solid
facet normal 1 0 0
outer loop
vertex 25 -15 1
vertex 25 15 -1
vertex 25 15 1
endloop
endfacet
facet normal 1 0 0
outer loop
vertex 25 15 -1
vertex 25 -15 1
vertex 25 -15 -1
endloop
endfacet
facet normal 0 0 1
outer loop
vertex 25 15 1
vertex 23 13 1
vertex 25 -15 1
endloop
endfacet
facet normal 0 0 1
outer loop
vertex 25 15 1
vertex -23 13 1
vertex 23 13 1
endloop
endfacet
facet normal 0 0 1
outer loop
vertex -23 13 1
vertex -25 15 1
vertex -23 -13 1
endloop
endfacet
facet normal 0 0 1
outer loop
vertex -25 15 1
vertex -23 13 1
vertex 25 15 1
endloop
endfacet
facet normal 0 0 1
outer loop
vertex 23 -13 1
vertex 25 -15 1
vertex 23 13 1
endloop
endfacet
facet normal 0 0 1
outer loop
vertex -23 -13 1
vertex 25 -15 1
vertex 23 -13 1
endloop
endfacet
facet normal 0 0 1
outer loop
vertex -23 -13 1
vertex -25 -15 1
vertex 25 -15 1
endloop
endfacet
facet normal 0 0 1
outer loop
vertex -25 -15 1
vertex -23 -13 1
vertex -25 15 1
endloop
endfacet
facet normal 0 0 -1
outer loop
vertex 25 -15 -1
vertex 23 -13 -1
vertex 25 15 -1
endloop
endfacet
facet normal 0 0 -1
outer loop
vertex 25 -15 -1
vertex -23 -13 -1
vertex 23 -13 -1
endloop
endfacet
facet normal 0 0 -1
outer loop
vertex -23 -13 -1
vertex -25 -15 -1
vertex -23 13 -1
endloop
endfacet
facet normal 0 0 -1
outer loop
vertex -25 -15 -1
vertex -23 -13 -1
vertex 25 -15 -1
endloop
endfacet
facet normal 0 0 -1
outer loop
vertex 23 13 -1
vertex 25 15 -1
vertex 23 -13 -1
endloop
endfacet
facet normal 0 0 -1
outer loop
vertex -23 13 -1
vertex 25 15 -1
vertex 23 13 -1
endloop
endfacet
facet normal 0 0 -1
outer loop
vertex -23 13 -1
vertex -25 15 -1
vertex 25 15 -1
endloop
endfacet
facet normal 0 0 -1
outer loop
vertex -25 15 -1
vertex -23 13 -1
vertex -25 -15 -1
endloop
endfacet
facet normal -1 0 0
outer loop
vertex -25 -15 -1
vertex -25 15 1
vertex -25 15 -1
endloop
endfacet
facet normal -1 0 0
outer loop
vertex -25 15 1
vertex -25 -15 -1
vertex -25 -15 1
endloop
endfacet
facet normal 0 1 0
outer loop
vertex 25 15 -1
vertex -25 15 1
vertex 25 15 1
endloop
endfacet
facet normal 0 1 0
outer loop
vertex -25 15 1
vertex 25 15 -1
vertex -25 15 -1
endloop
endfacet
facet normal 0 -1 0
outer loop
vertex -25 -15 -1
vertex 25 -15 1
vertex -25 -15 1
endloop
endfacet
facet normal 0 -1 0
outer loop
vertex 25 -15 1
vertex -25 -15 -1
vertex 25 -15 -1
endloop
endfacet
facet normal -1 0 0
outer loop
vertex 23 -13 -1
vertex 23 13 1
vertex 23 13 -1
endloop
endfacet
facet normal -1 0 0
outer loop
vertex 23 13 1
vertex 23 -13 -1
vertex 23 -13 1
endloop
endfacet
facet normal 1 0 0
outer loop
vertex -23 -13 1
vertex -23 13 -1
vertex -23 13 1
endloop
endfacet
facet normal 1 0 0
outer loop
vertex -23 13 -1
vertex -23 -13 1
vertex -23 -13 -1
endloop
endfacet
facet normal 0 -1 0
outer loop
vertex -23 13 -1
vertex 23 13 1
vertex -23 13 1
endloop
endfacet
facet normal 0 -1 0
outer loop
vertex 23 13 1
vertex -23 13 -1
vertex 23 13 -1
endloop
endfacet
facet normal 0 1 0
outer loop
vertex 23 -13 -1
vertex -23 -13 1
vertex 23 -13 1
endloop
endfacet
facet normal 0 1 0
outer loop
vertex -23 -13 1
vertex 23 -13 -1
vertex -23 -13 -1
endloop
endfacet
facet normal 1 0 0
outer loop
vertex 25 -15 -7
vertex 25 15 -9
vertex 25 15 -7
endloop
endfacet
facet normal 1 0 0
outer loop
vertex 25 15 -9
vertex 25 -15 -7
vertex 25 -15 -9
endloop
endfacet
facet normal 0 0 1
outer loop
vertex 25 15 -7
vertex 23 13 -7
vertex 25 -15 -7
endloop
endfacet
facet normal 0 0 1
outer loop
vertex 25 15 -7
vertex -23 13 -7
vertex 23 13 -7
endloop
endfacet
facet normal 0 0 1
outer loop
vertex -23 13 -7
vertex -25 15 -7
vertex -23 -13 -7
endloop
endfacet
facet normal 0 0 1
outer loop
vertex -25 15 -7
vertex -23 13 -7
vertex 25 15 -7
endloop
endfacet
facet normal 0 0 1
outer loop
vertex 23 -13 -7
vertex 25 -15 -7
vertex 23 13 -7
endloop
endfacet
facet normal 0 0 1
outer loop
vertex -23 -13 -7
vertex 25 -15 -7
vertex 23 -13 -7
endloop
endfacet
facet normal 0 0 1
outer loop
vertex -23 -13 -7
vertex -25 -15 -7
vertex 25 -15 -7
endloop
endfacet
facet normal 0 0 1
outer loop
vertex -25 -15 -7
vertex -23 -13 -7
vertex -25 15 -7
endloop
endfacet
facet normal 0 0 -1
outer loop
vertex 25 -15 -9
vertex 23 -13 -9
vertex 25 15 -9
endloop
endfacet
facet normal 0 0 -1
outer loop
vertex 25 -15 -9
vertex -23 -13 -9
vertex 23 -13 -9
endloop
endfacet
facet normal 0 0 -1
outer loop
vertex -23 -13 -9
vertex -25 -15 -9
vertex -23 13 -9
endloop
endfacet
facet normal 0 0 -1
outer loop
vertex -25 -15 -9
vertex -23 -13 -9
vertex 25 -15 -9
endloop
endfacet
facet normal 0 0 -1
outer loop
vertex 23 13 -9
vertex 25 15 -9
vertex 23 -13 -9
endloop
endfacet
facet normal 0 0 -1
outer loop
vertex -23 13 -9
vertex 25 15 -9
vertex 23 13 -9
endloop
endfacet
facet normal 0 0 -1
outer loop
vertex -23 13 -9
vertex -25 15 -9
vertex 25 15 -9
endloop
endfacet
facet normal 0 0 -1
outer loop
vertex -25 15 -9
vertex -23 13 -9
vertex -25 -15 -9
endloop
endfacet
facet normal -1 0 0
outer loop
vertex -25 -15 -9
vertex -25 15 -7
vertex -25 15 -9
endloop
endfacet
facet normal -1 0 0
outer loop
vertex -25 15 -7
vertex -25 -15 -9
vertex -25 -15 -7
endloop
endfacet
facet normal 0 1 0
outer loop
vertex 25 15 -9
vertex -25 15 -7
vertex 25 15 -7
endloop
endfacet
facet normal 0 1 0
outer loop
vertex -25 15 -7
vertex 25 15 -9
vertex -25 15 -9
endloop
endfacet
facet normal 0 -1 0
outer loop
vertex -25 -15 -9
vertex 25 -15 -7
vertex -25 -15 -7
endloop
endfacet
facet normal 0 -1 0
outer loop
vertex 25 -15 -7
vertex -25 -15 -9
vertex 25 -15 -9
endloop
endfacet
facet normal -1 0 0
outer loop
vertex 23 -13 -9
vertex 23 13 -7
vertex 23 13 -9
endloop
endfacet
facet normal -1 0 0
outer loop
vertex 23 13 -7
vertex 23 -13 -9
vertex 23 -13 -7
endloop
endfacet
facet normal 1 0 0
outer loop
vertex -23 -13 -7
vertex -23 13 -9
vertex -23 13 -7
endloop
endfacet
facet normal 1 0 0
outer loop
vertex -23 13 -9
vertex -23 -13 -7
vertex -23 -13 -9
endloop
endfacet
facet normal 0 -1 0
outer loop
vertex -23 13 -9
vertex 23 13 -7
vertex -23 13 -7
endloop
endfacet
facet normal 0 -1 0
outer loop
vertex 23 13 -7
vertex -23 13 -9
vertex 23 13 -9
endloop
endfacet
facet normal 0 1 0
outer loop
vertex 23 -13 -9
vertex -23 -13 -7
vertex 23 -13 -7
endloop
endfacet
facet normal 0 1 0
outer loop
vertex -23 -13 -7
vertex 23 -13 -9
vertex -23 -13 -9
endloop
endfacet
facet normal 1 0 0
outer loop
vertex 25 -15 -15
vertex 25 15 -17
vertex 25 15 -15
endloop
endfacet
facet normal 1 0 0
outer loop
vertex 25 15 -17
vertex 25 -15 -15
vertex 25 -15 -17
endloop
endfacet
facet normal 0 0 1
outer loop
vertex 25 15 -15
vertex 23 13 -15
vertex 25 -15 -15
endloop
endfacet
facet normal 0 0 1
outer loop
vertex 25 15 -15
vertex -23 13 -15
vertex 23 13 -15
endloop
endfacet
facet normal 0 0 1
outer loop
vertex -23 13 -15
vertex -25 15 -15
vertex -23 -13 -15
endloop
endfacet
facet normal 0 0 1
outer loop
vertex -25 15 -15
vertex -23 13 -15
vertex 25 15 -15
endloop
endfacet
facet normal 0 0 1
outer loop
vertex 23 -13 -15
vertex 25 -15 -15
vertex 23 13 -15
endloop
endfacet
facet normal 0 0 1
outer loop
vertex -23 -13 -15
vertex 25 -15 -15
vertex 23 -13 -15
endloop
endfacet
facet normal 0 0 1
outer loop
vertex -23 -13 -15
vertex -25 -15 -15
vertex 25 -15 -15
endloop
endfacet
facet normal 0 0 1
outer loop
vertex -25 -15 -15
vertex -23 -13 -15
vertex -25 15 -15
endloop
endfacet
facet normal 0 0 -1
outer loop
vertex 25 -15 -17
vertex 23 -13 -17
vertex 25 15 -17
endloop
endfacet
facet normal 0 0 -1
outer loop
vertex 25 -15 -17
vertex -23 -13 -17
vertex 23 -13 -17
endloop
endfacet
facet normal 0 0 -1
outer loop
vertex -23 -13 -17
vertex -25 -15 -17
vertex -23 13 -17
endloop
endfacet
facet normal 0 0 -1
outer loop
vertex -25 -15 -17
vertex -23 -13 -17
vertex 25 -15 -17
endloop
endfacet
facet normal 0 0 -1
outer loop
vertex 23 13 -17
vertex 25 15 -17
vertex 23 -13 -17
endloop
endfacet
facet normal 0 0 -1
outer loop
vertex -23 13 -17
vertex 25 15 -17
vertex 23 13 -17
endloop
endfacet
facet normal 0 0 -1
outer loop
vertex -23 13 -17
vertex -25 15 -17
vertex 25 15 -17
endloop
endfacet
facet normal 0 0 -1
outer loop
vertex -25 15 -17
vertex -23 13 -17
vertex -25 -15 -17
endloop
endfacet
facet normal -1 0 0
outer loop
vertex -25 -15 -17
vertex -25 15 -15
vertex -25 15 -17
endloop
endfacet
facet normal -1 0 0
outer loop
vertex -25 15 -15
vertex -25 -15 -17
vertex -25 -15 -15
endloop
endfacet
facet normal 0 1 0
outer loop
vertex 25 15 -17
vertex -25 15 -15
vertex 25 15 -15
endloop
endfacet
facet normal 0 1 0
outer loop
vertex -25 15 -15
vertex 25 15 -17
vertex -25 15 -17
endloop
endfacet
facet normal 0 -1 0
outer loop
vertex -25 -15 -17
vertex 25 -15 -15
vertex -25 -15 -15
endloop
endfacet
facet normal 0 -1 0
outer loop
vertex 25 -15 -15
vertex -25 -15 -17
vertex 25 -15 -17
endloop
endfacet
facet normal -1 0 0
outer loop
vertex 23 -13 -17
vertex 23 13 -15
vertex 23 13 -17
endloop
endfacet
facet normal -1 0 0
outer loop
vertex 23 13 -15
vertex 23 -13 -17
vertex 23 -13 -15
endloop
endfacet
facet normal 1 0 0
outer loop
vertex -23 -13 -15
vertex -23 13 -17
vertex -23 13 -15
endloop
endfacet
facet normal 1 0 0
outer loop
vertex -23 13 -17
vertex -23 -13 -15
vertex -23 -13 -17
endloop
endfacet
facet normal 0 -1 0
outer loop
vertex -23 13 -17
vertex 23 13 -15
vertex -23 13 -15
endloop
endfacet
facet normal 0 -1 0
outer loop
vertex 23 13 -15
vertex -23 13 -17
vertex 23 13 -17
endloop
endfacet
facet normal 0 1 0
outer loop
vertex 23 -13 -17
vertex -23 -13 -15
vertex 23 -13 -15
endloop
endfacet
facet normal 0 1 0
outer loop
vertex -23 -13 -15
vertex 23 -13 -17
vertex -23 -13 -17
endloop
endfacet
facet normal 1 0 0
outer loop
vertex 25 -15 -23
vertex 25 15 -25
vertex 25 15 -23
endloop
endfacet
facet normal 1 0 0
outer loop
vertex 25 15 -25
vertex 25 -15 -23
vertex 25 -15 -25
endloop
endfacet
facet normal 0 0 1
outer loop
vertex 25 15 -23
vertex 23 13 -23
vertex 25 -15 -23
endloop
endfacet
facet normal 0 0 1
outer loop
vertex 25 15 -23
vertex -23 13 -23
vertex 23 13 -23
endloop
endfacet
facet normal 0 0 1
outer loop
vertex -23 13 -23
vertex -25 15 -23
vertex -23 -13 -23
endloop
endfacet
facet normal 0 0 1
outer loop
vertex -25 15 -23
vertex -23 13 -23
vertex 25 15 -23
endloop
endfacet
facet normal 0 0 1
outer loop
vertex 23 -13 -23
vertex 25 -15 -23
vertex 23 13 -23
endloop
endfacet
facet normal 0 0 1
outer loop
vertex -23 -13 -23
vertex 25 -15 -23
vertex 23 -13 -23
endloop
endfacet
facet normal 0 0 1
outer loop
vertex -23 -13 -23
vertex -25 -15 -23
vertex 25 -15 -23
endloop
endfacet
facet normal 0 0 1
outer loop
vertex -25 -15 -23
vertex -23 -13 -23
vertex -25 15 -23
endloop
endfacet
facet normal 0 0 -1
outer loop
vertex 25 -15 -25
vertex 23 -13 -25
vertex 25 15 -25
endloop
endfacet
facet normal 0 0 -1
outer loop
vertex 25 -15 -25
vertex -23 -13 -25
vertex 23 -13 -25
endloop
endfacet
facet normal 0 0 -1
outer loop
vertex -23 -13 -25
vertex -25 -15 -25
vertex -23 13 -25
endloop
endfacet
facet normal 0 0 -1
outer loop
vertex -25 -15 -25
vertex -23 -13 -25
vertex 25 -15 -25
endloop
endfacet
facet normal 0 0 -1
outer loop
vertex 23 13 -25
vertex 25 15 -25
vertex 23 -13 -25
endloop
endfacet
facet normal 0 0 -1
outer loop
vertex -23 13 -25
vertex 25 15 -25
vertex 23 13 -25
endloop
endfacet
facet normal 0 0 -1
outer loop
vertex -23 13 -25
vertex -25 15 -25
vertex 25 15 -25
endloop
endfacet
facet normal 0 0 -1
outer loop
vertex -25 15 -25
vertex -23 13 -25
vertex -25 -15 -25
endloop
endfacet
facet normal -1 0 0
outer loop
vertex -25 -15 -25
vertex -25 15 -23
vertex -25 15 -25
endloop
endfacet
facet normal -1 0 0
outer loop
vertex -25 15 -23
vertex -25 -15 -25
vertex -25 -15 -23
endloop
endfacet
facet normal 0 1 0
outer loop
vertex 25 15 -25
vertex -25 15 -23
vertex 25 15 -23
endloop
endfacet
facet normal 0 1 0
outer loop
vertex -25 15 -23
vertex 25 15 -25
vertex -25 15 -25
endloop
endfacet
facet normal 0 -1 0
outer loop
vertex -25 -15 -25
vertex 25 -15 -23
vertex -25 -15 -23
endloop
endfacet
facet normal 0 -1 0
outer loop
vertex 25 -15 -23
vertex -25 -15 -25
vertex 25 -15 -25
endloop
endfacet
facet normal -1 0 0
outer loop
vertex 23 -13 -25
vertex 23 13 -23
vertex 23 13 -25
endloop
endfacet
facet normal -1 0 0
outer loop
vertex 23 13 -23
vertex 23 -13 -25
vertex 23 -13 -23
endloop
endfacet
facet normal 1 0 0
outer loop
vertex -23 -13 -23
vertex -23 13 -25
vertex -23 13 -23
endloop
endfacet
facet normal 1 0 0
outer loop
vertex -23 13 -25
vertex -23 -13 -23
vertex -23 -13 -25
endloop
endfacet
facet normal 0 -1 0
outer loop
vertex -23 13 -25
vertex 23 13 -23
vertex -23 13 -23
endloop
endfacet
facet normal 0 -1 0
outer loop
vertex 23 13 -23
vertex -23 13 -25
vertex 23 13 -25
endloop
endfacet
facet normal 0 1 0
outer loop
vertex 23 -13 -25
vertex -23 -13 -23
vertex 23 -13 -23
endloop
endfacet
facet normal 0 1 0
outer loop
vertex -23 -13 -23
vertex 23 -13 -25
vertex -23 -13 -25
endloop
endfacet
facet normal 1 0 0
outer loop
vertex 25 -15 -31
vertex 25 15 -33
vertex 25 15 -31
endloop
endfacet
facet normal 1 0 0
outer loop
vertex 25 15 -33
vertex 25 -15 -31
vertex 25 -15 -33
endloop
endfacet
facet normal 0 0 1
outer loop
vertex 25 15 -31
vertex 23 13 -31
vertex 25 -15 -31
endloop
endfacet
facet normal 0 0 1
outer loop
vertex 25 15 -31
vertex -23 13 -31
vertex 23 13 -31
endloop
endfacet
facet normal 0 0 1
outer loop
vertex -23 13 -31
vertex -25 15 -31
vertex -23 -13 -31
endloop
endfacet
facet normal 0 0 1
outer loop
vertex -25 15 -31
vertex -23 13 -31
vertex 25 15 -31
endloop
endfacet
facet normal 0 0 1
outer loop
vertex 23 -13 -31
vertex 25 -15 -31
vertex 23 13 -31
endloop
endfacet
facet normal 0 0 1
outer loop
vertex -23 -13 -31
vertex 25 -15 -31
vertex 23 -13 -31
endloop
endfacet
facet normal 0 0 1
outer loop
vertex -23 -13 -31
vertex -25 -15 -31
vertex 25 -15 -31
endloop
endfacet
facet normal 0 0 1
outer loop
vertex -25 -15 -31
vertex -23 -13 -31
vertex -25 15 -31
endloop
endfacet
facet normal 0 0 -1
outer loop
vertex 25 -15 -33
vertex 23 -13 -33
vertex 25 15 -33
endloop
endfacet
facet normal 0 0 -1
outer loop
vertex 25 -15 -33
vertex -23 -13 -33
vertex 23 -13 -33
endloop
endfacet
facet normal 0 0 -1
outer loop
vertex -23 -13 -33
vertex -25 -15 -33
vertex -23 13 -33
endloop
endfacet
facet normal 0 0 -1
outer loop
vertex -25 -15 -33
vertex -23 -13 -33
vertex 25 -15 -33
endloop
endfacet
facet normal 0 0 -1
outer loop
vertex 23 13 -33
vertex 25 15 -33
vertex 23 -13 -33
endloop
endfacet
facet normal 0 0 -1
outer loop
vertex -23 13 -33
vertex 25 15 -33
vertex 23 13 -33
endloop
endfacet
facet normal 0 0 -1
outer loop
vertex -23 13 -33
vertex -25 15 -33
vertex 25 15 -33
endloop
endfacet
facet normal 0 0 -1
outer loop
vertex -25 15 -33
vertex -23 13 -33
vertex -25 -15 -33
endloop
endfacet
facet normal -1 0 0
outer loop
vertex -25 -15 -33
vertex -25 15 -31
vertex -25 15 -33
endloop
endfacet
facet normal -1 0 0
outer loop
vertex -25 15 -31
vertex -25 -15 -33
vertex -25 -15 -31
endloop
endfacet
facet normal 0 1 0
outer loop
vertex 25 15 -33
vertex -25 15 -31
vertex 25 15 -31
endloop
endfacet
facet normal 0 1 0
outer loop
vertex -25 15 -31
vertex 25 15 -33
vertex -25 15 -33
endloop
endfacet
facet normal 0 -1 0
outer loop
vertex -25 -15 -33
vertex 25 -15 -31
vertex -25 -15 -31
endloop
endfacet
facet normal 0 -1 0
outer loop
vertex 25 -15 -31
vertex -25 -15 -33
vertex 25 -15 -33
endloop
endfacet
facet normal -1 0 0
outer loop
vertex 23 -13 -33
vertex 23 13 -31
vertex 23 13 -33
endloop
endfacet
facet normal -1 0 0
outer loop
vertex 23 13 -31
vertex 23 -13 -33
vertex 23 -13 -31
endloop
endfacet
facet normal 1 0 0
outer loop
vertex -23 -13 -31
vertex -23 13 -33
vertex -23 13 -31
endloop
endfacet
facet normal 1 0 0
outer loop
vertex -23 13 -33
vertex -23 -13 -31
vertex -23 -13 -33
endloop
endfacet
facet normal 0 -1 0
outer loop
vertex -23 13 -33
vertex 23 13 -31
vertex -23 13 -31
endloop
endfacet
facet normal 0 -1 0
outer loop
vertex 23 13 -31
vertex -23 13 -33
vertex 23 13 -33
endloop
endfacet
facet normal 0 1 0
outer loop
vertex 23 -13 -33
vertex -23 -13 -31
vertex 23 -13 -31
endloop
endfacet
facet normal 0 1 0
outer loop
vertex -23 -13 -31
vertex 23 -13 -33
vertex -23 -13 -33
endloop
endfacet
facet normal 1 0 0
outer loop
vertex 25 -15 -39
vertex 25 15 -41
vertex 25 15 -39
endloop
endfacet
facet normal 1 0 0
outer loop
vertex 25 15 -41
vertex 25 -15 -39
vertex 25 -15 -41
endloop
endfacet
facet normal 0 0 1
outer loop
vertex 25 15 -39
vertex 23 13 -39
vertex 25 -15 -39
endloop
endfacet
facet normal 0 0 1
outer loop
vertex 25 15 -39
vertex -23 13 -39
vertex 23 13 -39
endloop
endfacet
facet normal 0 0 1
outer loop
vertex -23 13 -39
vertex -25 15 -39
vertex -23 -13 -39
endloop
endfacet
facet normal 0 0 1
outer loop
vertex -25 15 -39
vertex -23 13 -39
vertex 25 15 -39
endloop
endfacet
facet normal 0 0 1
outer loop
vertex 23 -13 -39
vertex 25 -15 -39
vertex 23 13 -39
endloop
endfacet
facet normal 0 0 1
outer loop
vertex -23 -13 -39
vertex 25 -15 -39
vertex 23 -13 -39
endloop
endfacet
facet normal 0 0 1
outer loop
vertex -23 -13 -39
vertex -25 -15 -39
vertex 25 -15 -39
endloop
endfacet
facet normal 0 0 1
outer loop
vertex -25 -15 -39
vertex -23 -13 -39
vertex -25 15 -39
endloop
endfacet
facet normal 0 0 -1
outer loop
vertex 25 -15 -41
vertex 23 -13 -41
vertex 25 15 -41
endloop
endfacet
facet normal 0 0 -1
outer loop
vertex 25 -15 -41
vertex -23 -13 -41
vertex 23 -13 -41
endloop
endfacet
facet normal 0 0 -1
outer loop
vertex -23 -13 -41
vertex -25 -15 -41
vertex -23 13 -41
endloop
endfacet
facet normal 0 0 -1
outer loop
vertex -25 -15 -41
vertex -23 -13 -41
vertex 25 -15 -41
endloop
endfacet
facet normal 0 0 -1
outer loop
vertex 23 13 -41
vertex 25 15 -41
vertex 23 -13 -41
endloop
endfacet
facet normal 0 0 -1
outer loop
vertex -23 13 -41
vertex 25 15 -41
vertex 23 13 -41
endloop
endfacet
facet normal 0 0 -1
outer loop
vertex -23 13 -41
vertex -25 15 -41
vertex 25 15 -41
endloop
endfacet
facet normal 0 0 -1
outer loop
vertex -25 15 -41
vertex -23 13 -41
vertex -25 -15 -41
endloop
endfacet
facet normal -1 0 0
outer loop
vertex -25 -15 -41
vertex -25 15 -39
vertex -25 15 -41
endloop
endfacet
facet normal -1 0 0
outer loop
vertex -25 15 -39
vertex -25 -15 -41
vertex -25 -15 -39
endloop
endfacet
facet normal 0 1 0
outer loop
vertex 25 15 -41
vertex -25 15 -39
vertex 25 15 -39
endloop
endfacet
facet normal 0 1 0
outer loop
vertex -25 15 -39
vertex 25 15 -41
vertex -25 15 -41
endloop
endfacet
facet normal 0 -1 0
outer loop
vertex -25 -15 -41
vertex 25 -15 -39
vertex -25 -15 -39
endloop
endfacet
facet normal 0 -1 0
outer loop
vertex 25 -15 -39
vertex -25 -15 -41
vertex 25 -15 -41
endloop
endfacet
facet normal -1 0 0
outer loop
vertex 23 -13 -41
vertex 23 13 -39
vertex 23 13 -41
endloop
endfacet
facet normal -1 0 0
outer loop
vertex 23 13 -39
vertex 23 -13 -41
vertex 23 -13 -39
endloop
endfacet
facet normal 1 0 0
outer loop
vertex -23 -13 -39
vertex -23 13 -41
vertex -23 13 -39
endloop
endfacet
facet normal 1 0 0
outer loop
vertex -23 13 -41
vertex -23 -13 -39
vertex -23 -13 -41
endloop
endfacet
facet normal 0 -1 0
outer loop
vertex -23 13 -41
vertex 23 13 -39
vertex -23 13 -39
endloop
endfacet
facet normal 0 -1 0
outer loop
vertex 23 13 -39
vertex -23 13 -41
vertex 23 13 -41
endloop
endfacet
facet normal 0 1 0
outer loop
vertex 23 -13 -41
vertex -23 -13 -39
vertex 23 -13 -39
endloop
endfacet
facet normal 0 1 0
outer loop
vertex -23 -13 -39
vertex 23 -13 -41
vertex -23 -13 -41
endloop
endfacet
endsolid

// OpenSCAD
// Parameters for the rectangular frame
frame_outer_width = 50;  // Outer width of the frame
frame_outer_height = 30; // Outer height of the frame
frame_thickness = 2;     // Thickness of the frame
frame_inner_width = frame_outer_width - 2 * frame_thickness; // Inner width of the hollow center
frame_inner_height = frame_outer_height - 2 * frame_thickness; // Inner height of the hollow center
frame_spacing = 8;       // Adjusted spacing between each frame layer to match the original model
num_frames = 6;          // Total number of frames

// Function to create a single rectangular frame
module rectangular_frame() {
    difference() {
        // Outer rectangle
        cube([frame_outer_width, frame_outer_height, frame_thickness], center = true);
        // Inner hollow rectangle
        translate([0, 0, -0.1]) // Slightly offset to avoid rendering issues
        cube([frame_inner_width, frame_inner_height, frame_thickness + 0.2], center = true);
    }
}

// Assemble the layers of rectangular frames
module flexible_coupling() {
    for (i = [0 : num_frames - 1]) {
        translate([0, 0, -i * frame_spacing]) {
            // Ensure frames are perfectly aligned and parallel
            rotate([0, 0, 0]) // No rotation to maintain alignment
            rectangular_frame();
        }
    }
}

// Render the flexible coupling
flexible_coupling();
